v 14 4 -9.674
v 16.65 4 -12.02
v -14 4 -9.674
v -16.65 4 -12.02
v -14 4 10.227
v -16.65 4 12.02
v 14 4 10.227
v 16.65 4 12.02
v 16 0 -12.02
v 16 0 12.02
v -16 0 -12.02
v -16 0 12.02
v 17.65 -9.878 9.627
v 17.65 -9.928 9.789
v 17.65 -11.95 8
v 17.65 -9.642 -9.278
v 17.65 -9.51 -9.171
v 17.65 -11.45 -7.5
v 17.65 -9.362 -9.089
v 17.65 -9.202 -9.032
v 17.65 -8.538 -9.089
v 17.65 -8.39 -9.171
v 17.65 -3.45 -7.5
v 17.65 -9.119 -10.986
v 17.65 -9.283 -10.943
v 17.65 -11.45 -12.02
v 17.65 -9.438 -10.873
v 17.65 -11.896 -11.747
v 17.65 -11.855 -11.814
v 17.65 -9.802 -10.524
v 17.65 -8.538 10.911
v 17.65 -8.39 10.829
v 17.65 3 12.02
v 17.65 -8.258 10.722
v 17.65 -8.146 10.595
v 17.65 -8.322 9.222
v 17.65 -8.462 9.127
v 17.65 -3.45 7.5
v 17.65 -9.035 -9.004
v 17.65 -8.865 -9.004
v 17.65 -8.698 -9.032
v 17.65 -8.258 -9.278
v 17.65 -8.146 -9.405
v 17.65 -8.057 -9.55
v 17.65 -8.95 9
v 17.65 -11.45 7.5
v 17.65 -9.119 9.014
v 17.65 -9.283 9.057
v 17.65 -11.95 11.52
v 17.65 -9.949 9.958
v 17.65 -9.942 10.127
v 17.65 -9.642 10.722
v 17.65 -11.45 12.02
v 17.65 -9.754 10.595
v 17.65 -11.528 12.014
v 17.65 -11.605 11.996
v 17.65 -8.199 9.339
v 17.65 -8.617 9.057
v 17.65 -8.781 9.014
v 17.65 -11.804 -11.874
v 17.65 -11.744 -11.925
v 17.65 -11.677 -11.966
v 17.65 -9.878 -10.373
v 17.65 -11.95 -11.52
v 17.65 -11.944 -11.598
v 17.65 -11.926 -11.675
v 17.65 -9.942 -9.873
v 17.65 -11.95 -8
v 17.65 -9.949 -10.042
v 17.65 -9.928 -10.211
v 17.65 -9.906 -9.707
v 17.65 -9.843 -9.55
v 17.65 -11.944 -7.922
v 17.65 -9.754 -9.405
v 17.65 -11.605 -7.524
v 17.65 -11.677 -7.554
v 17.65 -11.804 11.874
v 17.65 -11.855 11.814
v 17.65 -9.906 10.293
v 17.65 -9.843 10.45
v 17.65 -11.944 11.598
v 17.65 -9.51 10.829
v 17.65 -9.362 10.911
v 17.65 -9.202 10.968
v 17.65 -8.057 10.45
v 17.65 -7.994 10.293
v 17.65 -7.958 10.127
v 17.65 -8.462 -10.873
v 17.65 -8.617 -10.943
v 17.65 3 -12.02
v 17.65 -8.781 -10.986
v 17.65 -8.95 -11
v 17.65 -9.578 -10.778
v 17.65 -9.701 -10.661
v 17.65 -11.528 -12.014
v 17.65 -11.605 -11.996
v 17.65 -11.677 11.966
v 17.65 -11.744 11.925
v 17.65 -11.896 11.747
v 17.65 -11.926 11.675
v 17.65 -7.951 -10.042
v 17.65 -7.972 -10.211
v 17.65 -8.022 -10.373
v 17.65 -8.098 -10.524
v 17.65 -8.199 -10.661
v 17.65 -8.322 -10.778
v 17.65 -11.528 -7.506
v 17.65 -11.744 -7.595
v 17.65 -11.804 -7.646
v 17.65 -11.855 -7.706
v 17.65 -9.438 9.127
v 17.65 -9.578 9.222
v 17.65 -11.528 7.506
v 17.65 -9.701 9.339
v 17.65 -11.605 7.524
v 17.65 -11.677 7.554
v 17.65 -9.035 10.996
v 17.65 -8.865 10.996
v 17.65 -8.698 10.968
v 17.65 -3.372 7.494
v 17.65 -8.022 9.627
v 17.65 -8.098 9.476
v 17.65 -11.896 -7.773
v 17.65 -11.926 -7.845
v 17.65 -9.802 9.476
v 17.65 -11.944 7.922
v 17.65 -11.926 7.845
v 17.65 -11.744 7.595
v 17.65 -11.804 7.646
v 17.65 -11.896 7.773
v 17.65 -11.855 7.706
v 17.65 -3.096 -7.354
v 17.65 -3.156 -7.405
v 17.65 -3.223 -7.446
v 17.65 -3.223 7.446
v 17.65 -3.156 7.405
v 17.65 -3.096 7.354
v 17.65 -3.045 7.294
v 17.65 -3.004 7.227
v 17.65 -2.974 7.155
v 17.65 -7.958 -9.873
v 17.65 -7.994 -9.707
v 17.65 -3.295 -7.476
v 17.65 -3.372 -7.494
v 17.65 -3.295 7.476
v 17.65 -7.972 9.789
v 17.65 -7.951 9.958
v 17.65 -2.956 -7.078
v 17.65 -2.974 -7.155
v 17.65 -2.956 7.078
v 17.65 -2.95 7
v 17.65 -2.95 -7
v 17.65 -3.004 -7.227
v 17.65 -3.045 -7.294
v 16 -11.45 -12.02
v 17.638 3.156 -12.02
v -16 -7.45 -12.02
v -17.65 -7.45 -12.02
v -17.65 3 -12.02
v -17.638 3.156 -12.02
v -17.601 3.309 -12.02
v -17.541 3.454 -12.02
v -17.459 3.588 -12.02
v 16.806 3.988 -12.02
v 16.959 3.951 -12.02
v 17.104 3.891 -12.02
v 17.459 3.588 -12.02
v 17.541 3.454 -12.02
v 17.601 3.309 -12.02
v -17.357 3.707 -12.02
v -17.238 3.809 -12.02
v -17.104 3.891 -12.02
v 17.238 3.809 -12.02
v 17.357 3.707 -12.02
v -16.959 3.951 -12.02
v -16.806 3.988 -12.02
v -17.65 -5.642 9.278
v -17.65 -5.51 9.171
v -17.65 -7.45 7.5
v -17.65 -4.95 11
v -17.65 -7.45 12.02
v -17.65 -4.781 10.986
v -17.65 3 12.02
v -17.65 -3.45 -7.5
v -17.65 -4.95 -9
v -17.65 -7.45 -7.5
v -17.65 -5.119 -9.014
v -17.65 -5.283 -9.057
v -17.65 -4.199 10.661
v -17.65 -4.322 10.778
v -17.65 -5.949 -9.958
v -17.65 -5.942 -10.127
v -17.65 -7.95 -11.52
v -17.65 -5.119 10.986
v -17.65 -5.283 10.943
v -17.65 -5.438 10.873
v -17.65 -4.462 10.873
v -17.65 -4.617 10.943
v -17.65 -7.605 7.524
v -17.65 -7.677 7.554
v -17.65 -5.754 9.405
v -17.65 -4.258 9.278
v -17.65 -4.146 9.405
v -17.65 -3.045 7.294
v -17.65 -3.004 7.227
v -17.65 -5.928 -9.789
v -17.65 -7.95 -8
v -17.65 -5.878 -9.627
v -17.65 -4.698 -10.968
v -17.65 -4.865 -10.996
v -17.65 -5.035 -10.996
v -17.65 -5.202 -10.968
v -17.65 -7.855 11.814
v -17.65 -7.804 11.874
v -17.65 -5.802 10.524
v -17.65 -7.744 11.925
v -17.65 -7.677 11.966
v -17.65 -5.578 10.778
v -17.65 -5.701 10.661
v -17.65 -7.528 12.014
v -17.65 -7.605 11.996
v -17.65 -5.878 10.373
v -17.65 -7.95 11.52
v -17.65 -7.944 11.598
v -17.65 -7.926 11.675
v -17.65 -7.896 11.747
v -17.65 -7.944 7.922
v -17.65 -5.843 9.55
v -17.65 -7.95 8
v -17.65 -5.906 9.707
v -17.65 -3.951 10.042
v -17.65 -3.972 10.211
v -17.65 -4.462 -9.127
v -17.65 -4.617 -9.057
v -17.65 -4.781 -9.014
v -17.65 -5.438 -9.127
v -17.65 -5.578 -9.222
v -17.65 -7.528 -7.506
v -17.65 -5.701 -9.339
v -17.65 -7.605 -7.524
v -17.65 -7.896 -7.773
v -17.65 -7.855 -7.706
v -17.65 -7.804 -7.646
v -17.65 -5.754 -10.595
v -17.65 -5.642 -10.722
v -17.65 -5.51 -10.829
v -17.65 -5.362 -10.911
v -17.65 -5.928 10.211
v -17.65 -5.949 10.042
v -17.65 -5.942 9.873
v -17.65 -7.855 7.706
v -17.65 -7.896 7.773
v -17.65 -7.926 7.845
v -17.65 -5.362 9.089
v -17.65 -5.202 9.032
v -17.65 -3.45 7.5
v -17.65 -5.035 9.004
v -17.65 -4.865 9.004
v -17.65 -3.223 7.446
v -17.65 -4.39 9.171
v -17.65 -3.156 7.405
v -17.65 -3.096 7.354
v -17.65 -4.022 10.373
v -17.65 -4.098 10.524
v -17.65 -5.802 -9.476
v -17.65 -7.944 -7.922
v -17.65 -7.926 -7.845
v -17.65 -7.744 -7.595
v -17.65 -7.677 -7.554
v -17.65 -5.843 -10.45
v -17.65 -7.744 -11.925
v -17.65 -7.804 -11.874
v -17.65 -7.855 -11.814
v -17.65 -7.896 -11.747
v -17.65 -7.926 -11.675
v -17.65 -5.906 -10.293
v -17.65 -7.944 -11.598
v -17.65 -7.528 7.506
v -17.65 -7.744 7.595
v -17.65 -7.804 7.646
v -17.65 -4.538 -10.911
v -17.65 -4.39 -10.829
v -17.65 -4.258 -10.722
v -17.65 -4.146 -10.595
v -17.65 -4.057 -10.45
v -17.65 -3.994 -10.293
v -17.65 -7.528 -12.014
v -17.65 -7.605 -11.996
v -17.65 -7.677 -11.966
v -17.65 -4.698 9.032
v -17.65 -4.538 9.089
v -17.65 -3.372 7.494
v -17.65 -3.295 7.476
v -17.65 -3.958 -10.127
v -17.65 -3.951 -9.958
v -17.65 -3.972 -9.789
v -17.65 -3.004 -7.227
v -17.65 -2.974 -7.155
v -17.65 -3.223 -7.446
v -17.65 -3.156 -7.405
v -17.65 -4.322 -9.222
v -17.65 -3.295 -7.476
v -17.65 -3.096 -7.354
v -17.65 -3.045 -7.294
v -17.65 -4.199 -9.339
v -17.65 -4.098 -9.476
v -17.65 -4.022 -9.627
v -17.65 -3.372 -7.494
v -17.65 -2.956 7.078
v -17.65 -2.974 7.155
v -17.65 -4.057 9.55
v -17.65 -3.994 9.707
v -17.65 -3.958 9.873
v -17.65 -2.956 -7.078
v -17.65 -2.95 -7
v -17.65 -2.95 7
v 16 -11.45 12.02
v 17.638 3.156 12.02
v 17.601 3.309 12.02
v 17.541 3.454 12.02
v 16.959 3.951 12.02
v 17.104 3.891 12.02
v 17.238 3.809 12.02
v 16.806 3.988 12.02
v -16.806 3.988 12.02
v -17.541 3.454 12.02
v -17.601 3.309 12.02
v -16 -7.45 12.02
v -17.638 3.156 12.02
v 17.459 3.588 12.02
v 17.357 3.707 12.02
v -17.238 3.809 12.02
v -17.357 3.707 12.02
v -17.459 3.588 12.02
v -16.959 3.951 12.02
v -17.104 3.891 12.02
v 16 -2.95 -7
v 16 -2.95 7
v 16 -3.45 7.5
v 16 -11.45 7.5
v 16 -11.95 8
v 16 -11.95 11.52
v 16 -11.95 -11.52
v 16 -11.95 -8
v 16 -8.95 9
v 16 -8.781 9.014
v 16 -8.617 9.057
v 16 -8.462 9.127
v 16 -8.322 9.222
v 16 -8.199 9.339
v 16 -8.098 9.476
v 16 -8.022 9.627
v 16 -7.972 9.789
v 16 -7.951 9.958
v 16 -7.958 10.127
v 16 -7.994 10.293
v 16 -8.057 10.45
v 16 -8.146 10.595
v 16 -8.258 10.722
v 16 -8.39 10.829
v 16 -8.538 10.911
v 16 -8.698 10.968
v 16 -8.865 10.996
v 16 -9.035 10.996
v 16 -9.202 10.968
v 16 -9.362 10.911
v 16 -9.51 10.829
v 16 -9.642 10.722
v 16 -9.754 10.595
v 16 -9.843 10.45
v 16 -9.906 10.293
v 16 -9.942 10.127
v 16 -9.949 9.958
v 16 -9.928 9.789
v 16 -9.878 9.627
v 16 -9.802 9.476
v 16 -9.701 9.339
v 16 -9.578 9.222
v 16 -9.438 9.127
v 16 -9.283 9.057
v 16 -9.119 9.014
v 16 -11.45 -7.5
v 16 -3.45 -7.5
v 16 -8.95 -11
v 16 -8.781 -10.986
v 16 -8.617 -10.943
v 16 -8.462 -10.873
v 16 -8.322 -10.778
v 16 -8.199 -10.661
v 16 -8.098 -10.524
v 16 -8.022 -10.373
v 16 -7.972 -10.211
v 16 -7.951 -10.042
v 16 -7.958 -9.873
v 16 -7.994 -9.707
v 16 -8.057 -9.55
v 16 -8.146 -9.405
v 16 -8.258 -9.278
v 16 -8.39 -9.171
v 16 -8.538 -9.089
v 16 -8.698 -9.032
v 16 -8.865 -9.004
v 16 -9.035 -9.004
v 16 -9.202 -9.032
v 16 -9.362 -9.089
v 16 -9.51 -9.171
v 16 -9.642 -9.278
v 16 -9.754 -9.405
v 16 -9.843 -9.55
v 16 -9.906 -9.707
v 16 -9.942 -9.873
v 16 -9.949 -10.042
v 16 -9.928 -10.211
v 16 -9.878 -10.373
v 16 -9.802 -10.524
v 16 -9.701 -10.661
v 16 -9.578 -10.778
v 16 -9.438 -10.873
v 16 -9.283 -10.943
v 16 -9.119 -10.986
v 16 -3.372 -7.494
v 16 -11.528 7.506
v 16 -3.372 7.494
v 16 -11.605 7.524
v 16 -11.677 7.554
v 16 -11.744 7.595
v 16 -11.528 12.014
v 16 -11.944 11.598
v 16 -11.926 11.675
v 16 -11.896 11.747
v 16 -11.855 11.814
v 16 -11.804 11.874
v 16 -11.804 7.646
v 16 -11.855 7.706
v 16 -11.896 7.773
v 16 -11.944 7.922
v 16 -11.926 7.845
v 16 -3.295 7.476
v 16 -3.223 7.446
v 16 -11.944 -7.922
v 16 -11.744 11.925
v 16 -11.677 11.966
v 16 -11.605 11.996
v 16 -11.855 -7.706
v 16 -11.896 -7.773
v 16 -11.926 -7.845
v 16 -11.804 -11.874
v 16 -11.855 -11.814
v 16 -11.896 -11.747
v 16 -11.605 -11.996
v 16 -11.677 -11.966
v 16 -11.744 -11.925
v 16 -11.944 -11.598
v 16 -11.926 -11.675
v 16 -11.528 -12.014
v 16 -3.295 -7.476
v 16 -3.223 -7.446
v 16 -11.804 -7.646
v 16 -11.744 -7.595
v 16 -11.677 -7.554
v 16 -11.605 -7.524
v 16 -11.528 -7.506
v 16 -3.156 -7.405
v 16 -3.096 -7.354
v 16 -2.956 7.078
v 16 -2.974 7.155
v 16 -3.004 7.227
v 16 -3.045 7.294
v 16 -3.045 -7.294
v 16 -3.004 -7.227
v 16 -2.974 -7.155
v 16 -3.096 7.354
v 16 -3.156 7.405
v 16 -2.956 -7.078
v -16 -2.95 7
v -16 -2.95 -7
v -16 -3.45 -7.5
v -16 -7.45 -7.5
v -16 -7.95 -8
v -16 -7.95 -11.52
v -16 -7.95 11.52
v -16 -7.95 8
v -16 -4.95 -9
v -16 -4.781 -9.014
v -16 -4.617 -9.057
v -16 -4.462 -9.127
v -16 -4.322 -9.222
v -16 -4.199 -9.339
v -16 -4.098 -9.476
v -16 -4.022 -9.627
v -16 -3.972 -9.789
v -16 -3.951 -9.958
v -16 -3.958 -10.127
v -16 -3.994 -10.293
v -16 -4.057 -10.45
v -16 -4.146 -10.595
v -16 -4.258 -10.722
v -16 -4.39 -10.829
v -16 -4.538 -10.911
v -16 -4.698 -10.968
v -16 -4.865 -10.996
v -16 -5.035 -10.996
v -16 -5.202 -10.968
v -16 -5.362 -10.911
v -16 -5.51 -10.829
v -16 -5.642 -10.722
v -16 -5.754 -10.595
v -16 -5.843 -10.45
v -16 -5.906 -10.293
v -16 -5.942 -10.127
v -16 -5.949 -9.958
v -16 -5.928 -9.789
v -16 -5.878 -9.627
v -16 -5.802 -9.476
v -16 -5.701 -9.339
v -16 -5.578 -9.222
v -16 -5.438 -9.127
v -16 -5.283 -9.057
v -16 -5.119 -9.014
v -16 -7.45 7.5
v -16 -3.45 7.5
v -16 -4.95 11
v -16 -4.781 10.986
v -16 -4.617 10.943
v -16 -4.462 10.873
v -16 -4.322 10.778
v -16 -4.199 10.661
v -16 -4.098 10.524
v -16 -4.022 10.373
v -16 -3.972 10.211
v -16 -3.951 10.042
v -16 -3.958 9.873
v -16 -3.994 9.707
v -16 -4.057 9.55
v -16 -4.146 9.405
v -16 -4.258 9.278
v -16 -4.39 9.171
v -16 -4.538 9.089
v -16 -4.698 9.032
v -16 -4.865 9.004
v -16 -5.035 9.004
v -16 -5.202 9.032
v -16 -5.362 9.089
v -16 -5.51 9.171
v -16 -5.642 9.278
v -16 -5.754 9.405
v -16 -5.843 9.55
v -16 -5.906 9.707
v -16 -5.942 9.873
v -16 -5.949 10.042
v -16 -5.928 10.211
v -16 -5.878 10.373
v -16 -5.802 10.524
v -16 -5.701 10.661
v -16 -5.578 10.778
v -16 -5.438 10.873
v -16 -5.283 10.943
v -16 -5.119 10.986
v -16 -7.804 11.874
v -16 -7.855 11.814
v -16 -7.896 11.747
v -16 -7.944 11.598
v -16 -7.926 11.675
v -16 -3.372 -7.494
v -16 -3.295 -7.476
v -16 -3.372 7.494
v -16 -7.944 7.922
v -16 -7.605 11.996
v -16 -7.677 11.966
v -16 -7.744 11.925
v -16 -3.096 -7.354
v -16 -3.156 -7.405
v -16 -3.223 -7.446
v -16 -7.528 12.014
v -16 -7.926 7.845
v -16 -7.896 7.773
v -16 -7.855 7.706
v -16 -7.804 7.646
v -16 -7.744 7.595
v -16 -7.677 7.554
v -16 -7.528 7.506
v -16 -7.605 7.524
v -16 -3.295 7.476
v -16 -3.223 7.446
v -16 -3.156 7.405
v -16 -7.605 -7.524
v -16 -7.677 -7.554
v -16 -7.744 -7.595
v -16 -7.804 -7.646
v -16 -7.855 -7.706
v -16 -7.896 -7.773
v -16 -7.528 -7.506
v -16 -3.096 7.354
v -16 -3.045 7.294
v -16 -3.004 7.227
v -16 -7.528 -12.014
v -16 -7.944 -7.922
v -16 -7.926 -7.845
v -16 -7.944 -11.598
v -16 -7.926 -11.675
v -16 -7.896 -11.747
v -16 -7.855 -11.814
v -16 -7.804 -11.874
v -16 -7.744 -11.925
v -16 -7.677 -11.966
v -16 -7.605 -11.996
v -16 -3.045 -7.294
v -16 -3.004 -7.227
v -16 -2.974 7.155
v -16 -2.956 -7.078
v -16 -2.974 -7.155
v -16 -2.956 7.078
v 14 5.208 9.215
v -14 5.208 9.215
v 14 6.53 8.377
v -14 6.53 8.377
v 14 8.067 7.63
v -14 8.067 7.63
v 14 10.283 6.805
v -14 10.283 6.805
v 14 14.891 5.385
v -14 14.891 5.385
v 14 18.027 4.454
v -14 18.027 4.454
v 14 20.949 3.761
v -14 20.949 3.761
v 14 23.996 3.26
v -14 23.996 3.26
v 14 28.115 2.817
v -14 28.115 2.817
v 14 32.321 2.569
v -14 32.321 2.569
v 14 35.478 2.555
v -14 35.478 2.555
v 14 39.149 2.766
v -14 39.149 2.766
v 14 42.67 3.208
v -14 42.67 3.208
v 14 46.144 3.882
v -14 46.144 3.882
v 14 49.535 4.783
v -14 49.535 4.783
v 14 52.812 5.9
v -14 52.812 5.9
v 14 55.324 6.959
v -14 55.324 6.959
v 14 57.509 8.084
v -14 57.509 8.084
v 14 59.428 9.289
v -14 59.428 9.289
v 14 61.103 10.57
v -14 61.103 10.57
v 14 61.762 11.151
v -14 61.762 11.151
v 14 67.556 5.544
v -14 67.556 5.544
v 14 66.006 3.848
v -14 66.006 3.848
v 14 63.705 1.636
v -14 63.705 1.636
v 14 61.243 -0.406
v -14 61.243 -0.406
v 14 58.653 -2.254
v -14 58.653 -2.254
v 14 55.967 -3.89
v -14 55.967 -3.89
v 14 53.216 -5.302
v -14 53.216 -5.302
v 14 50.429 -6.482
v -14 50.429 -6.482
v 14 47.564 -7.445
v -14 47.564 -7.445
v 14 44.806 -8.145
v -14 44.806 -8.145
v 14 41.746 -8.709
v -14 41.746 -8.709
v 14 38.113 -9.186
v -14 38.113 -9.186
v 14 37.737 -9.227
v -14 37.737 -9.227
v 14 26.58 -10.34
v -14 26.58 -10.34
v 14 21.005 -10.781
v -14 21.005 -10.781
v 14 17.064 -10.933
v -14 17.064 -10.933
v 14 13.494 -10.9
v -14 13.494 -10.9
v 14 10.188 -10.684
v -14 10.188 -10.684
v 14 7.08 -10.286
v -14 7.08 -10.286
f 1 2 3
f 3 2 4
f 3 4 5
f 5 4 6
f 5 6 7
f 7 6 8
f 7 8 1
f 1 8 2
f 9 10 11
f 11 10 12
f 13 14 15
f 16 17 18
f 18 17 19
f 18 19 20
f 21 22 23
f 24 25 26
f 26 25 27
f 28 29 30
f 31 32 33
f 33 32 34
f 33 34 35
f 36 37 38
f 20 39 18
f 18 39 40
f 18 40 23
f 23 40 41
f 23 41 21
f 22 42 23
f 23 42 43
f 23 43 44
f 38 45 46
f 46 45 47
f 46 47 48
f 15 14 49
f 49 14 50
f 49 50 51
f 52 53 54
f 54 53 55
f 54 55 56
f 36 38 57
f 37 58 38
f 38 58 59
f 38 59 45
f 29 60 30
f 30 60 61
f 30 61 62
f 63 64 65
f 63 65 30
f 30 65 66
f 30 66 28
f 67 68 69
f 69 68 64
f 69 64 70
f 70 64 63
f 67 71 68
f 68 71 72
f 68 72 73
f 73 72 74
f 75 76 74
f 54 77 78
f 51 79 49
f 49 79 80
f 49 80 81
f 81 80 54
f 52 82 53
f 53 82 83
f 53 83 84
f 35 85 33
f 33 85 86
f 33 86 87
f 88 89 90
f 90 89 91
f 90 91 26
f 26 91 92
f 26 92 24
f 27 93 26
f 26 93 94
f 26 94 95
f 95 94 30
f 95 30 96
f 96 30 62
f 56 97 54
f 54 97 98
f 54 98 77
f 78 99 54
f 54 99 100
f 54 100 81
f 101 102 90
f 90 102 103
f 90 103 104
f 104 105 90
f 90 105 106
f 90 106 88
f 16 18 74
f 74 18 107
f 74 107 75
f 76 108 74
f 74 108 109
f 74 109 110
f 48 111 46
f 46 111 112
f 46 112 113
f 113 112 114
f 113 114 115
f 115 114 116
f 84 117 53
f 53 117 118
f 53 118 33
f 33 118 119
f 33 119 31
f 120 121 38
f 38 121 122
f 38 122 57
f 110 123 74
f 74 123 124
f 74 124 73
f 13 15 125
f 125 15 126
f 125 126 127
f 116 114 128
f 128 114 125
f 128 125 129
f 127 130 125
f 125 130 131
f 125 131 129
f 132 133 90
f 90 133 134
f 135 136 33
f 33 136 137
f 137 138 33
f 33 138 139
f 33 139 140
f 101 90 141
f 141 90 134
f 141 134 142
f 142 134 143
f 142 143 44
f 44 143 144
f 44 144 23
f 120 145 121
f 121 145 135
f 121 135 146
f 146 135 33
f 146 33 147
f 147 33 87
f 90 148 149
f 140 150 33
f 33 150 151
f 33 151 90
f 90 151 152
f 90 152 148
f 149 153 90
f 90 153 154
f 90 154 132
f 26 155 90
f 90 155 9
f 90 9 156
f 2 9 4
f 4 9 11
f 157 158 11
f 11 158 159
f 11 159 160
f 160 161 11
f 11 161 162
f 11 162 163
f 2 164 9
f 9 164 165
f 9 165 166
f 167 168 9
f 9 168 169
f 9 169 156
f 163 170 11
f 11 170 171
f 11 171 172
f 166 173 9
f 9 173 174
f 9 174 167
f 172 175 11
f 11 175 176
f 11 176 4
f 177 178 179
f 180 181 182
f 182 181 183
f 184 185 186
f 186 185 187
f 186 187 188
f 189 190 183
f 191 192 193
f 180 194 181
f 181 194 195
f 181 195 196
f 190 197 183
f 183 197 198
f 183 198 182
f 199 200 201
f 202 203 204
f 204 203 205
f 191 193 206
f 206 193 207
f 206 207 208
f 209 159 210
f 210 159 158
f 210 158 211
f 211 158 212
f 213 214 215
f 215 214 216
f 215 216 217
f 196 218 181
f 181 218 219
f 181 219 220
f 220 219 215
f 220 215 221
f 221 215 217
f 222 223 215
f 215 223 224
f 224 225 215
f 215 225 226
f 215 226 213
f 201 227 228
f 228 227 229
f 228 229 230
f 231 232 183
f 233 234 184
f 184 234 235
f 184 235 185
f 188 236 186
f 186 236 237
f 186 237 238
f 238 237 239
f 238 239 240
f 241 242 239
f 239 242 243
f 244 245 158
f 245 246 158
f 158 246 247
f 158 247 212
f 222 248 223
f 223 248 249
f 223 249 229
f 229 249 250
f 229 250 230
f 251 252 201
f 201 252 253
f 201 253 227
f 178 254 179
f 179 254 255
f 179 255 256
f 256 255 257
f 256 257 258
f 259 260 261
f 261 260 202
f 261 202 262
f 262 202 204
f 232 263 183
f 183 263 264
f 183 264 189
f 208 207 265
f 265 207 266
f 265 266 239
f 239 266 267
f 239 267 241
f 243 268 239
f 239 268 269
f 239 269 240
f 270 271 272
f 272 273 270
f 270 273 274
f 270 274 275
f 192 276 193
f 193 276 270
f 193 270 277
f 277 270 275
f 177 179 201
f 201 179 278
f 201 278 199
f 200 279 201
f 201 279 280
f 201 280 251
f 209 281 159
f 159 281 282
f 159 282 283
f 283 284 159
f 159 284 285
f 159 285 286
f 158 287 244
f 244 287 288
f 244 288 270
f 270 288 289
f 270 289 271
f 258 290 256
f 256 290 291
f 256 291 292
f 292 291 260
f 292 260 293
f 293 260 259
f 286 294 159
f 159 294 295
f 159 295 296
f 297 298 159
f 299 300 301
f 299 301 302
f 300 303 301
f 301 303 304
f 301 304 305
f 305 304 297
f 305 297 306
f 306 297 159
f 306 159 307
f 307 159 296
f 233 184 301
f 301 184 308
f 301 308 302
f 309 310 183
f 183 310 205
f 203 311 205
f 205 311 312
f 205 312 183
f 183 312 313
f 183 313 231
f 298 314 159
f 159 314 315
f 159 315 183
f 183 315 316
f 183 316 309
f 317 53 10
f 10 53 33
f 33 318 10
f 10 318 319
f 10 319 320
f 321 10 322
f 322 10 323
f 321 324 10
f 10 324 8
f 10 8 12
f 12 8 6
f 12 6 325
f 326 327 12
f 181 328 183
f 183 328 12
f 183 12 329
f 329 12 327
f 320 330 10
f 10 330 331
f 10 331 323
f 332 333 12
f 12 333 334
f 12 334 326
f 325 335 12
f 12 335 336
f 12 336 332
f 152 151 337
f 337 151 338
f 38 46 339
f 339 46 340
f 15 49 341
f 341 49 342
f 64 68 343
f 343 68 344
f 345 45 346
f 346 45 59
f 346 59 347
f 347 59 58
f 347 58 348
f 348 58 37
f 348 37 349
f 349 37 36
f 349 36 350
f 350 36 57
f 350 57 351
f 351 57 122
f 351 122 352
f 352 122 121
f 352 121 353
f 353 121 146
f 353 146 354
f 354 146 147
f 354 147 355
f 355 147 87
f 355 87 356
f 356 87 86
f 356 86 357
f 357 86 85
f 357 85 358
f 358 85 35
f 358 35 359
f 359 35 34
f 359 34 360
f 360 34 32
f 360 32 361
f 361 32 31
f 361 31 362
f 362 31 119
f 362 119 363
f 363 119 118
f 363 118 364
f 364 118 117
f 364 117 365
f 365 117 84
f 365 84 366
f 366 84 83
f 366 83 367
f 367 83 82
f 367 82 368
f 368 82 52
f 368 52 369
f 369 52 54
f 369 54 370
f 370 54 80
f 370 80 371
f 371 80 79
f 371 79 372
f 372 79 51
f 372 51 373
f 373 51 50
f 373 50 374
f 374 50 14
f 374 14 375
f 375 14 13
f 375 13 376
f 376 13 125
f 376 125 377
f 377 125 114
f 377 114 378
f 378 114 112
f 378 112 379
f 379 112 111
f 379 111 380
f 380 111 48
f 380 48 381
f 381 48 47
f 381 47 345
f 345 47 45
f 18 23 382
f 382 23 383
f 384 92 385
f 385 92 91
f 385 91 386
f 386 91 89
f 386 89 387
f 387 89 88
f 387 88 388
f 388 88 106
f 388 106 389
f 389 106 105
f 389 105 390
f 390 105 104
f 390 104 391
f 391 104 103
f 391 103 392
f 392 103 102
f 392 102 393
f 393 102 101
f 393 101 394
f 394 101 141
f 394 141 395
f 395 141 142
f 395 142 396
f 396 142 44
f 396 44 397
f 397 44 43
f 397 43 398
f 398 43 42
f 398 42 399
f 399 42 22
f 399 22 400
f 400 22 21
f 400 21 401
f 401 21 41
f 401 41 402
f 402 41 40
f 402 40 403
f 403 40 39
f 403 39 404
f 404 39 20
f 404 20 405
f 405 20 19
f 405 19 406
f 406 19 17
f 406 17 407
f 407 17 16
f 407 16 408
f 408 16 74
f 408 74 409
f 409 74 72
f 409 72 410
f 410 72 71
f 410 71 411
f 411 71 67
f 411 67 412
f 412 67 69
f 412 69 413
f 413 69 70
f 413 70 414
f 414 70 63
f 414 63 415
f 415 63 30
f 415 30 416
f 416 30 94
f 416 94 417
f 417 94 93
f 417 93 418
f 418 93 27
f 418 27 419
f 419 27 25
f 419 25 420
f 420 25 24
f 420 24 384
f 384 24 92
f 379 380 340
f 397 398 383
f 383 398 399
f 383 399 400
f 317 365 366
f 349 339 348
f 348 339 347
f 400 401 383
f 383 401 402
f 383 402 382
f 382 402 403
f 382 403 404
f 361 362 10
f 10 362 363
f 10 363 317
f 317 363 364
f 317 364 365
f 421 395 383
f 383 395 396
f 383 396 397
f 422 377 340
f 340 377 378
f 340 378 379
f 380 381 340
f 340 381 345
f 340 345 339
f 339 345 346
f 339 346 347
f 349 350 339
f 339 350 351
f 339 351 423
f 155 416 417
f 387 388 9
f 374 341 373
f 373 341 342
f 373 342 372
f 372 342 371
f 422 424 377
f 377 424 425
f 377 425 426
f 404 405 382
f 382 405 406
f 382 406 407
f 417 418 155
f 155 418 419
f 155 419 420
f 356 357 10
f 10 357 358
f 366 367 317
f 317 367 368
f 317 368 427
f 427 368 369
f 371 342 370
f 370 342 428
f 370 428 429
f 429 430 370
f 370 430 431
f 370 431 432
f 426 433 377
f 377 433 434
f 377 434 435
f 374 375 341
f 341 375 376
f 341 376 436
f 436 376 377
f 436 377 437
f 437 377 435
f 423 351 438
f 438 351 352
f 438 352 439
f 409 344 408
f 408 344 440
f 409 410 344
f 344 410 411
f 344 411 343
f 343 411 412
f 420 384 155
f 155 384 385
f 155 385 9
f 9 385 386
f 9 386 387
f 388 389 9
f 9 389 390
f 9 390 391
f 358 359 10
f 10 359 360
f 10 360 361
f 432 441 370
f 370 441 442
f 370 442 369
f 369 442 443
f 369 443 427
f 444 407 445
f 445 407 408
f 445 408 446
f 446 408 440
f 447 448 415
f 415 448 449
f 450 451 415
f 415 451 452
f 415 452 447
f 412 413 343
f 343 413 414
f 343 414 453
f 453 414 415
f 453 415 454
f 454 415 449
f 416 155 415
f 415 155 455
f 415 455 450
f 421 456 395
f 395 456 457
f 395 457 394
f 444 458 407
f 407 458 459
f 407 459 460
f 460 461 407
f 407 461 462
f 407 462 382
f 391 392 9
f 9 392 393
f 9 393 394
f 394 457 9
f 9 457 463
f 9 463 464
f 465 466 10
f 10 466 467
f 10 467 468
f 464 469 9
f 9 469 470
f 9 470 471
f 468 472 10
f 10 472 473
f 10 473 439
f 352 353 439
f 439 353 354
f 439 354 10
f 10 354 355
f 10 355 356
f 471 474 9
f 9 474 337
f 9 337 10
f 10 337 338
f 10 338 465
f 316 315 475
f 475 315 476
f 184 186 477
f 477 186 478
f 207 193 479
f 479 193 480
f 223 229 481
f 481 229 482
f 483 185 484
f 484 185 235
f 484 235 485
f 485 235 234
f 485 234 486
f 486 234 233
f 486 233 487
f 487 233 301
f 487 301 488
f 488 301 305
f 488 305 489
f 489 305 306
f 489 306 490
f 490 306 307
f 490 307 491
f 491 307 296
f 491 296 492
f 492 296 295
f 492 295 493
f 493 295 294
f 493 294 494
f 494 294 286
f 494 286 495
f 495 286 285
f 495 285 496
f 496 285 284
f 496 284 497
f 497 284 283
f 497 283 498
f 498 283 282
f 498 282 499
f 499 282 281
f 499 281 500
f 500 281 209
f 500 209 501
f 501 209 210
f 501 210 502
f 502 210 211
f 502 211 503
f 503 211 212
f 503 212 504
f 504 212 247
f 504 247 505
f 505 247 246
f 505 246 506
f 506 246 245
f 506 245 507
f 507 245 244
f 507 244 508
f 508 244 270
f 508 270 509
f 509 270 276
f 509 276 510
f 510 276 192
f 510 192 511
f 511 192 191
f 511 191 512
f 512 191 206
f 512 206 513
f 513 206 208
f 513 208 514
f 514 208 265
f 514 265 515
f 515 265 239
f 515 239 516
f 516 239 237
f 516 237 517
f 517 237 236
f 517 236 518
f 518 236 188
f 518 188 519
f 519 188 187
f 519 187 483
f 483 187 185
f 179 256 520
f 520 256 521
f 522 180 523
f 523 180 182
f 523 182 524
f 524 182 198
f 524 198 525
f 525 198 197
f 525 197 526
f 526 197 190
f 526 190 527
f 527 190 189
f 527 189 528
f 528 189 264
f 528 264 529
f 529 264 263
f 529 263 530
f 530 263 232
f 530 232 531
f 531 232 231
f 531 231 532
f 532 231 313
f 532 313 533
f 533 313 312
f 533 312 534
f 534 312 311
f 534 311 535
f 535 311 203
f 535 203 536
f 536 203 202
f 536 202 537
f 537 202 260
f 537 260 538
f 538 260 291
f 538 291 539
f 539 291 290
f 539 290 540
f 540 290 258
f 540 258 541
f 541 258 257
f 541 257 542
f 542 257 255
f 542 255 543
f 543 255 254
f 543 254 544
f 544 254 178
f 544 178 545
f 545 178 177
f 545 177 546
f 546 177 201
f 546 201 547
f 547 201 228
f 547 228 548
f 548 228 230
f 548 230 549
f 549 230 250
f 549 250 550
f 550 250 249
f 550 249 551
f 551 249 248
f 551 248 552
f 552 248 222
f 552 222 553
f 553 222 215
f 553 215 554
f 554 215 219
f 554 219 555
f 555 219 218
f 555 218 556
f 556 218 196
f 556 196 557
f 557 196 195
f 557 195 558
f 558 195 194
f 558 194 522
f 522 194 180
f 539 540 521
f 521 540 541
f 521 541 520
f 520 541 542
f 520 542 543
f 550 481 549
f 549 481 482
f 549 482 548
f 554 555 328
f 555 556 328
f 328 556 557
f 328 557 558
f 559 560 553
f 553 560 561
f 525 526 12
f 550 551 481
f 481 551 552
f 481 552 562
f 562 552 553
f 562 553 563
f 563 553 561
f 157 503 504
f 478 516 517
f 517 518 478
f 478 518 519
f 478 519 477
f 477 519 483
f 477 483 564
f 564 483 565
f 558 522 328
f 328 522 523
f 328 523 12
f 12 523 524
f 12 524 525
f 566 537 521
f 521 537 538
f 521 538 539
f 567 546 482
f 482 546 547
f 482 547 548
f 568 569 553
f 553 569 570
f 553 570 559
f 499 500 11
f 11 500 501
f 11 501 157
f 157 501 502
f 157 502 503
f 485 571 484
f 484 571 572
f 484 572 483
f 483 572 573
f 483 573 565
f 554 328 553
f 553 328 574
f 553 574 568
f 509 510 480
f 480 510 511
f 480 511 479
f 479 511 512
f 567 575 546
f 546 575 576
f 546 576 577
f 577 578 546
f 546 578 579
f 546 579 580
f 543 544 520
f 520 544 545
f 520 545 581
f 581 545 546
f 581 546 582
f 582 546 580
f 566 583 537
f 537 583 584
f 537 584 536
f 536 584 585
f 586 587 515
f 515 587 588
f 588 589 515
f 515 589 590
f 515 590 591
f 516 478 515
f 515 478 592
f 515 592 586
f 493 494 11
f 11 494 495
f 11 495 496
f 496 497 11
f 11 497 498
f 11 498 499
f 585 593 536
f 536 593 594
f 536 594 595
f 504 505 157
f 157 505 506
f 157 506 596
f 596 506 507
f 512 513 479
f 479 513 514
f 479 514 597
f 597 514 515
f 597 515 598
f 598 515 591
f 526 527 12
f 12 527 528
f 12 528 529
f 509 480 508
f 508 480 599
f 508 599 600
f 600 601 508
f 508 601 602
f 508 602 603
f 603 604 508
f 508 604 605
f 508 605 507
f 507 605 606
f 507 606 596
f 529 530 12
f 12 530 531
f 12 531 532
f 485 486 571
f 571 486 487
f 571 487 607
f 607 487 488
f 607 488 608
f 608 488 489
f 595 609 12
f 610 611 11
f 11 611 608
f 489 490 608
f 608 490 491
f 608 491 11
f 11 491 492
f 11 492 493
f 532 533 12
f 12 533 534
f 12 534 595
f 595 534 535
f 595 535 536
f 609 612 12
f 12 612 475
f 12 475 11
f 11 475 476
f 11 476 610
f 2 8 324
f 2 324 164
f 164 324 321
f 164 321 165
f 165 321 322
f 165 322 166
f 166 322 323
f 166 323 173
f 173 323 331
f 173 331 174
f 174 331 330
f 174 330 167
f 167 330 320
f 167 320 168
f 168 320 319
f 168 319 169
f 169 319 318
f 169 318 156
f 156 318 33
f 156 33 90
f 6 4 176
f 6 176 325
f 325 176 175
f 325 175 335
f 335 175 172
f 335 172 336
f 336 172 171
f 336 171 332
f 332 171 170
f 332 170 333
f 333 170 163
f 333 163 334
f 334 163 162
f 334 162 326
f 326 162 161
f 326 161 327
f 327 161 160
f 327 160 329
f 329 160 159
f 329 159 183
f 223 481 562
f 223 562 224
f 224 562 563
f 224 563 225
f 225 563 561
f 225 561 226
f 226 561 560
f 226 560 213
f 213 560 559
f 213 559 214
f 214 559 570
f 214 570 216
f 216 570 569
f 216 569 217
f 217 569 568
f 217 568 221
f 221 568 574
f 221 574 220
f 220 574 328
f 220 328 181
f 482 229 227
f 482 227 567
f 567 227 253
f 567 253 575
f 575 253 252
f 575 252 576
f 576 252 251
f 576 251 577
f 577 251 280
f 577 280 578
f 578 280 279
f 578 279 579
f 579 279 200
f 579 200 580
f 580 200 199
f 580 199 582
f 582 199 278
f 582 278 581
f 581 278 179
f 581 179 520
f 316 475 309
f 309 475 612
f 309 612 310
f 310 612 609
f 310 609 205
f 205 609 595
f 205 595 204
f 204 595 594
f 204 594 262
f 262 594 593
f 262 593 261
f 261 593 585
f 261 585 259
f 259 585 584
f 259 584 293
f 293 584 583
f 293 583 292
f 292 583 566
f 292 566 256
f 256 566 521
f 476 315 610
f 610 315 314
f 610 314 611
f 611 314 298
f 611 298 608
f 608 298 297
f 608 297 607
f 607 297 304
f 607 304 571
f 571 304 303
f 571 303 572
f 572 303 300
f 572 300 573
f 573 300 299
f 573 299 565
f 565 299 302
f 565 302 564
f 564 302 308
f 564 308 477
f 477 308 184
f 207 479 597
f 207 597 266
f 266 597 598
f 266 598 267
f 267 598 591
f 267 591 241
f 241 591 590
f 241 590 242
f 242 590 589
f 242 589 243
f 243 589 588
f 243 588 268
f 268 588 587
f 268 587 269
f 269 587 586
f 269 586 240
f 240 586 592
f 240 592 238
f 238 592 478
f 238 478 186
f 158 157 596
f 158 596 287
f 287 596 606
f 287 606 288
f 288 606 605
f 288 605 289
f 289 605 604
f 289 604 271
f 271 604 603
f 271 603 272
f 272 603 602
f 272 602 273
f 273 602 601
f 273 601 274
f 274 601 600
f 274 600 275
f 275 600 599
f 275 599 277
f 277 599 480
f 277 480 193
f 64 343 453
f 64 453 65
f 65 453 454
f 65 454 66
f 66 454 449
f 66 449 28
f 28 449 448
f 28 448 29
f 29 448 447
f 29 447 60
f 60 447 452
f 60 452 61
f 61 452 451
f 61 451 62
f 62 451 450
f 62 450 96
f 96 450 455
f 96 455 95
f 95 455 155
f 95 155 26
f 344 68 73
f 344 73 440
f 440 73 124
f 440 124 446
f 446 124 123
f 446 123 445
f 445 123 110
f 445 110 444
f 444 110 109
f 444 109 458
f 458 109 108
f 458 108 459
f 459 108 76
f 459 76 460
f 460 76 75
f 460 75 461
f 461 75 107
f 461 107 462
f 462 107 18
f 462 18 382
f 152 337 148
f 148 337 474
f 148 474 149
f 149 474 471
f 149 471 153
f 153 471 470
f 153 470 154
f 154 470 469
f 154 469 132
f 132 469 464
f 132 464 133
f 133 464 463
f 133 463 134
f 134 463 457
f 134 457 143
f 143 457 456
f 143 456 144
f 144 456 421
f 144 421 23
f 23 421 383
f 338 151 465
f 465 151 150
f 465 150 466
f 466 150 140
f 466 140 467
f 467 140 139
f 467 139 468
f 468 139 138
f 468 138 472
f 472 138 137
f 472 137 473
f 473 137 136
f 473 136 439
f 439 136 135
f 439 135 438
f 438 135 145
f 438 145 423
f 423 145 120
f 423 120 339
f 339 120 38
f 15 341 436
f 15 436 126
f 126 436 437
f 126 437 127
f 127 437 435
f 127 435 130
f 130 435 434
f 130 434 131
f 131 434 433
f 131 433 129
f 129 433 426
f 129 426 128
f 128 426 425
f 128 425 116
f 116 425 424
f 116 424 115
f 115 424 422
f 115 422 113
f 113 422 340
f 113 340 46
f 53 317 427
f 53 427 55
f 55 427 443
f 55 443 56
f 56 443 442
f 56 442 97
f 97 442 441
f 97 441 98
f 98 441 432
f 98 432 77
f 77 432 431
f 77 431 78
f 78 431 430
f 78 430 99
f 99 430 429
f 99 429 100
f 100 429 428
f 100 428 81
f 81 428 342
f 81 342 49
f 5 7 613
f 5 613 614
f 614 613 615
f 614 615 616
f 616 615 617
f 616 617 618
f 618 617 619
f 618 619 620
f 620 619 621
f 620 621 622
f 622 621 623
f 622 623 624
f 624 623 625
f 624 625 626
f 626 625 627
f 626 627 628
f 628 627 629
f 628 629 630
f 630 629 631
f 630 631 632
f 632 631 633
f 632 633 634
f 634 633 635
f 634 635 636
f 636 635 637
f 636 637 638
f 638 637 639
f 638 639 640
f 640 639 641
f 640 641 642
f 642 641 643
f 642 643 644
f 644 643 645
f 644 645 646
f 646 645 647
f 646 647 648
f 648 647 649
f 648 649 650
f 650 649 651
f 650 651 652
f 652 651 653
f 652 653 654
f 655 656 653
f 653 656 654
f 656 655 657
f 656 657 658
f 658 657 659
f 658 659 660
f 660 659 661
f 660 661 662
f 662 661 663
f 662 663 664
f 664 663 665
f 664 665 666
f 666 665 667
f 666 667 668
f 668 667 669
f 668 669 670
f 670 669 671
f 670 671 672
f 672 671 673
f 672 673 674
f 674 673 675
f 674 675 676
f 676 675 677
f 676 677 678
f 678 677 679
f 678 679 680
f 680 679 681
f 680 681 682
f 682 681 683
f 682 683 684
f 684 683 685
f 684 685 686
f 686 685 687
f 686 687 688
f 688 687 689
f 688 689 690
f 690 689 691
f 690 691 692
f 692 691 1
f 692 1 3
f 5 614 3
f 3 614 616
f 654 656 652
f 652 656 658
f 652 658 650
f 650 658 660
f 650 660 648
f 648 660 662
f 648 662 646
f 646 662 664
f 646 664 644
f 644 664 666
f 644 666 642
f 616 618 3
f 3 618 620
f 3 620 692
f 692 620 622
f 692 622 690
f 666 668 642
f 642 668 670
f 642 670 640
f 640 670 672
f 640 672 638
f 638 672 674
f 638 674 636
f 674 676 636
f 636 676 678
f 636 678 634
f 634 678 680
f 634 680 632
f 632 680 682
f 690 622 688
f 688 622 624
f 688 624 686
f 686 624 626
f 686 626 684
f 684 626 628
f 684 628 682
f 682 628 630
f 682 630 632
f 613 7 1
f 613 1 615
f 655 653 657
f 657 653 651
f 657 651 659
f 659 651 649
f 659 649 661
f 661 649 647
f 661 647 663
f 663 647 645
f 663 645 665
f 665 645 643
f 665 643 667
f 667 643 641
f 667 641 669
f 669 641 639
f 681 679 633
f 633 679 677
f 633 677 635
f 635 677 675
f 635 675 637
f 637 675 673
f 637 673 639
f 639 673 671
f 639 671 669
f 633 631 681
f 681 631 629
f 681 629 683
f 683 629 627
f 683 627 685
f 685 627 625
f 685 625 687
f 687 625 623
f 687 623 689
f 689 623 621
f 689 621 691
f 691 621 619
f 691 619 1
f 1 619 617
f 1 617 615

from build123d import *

# Parameters (mm, degrees)
SKETCH1_W                = 35.3
SKETCH1_H                = 24.04
BOSS_EXTRUDE1_DEPTH      = 4
SKETCH2_R                = 1
BOSS_EXTRUDE2_DEPTH      = 1.65
SKETCH3_R                = 1
BOSS_EXTRUDE3_DEPTH      = 1.65
FILLET1_R                = 1
FILLET2_R                = 1
FILLET3_R                = 0.5
BOSS_EXTRUDE4_DEPTH      = 14
BOSS_EXTRUDE4_DEPTH_BACK = 14


with BuildPart() as part:
    # Sketch1 → Boss-Extrude1 (new body)
    with BuildSketch(Plane(origin=(0, 0, 0), x_dir=(1, 0, 0), z_dir=(0, 1, 0))):
        Rectangle(SKETCH1_W, SKETCH1_H)
    extrude(amount=BOSS_EXTRUDE1_DEPTH)

    # Sketch2 → Boss-Extrude2 (add)
    # profile 1 of 2: a face of its own
    with BuildSketch(Plane(origin=(17.65, 0, 0), x_dir=(0, 0, -1), z_dir=(1, 0, 0))):
        Polygon((-7.5, -2.95), (0, -2.95), (0, 0), (-12.02, 0), (-12.02, -11.95), (-7.5, -11.95), align=None)
        with Locations((-10, -8.95)):
            Circle(SKETCH2_R, mode=Mode.SUBTRACT)
    # profile 2 of 2: a face of its own
    with BuildSketch(Plane(origin=(17.65, 0, 0), x_dir=(0, 0, -1), z_dir=(1, 0, 0))):
        Polygon((7.5, -2.95), (7.5, -11.95), (12.02, -11.95), (12.02, 0), (0, 0), (0, -2.95), align=None)
        with Locations((10, -8.95)):
            Circle(SKETCH2_R, mode=Mode.SUBTRACT)
    extrude(amount=-BOSS_EXTRUDE2_DEPTH)

    # Sketch3 → Boss-Extrude3 (add)
    # profile 1 of 2: a face of its own
    with BuildSketch(Plane.ZY.offset(17.65)):
        Polygon((-7.5, -2.95), (0, -2.95), (0, 0), (-12.02, 0), (-12.02, -7.95), (-7.5, -7.95), align=None)
        with Locations((-10, -4.95)):
            Circle(SKETCH3_R, mode=Mode.SUBTRACT)
    # profile 2 of 2: a face of its own
    with BuildSketch(Plane.ZY.offset(17.65)):
        Polygon((7.5, -2.95), (7.5, -7.95), (12.02, -7.95), (12.02, 0), (0, 0), (0, -2.95), align=None)
        with Locations((10, -4.95)):
            Circle(SKETCH3_R, mode=Mode.SUBTRACT)
    extrude(amount=-BOSS_EXTRUDE3_DEPTH)

    # Fillet1
    fillet1_edges = [part.edges().sort_by_distance(p)[0] for p in [
        (17.65, 4, 0),
    ]]
    fillet(fillet1_edges, radius=FILLET1_R)

    # Fillet2
    fillet2_edges = [part.edges().sort_by_distance(p)[0] for p in [
        (-17.65, 4, 0),
    ]]
    fillet(fillet2_edges, radius=FILLET2_R)

    # Fillet3
    fillet3_edges = [part.edges().sort_by_distance(p)[0] for p in [
        (16.825, -2.95, -7.5),
        (16.825, -2.95, 7.5),
        (16.825, -11.95, 7.5),
        (16.825, -11.95, 12.02),
        (16.825, -11.95, -12.02),
        (16.825, -11.95, -7.5),
        (-16.825, -2.95, 7.5),
        (-16.825, -2.95, -7.5),
        (-16.825, -7.95, -7.5),
        (-16.825, -7.95, -12.02),
        (-16.825, -7.95, 12.02),
        (-16.825, -7.95, 7.5),
    ]]
    fillet(fillet3_edges, radius=FILLET3_R)

    # Sketch4 → Boss-Extrude4 (add, two sides: drawn at the far end of the back side and taken through both)
    with BuildSketch(Plane(origin=(0, 0, 0), x_dir=(0, 0, -1), z_dir=(1, 0, 0)).offset(-BOSS_EXTRUDE4_DEPTH_BACK)):
        with BuildLine():
            Line((9.673745494, 4), (-10.226501203, 4))
            add(Edge.make_bspline(
                [(-10.226501203, 4), (-7.796356339, 6.509613533), (-6.336100814, 12.08642199), (-3.780141018, 19.783903225), (-2.777594912, 27.375701916), (-2.332144175, 35.533933475), (-3.204767203, 43.923514345), (-5.6016641, 52.956063732), (-8.540539845, 58.923365351), (-11.151435745, 61.762281392)],
                knots=[0, 0, 0, 0, 0.167475037, 0.276325627, 0.399786563, 0.54187946, 0.677543888, 0.812359313, 1, 1, 1, 1], degree=3))
            Line((-11.151435745, 61.762281392), (-5.544090215, 67.556340911))
            add(Edge.make_bspline(
                [(9.673745494, 4), (11.961149809, 13.645336135), (10.023304181, 27.979049896), (8.188089208, 50.665532333), (0.66732995, 62.181297985), (-5.544090215, 67.556340911)],
                knots=[0, 0, 0, 0, 0.431185056, 0.63430967, 1, 1, 1, 1], degree=3))
        make_face()
    extrude(amount=BOSS_EXTRUDE4_DEPTH + BOSS_EXTRUDE4_DEPTH_BACK)


solid = part.part
